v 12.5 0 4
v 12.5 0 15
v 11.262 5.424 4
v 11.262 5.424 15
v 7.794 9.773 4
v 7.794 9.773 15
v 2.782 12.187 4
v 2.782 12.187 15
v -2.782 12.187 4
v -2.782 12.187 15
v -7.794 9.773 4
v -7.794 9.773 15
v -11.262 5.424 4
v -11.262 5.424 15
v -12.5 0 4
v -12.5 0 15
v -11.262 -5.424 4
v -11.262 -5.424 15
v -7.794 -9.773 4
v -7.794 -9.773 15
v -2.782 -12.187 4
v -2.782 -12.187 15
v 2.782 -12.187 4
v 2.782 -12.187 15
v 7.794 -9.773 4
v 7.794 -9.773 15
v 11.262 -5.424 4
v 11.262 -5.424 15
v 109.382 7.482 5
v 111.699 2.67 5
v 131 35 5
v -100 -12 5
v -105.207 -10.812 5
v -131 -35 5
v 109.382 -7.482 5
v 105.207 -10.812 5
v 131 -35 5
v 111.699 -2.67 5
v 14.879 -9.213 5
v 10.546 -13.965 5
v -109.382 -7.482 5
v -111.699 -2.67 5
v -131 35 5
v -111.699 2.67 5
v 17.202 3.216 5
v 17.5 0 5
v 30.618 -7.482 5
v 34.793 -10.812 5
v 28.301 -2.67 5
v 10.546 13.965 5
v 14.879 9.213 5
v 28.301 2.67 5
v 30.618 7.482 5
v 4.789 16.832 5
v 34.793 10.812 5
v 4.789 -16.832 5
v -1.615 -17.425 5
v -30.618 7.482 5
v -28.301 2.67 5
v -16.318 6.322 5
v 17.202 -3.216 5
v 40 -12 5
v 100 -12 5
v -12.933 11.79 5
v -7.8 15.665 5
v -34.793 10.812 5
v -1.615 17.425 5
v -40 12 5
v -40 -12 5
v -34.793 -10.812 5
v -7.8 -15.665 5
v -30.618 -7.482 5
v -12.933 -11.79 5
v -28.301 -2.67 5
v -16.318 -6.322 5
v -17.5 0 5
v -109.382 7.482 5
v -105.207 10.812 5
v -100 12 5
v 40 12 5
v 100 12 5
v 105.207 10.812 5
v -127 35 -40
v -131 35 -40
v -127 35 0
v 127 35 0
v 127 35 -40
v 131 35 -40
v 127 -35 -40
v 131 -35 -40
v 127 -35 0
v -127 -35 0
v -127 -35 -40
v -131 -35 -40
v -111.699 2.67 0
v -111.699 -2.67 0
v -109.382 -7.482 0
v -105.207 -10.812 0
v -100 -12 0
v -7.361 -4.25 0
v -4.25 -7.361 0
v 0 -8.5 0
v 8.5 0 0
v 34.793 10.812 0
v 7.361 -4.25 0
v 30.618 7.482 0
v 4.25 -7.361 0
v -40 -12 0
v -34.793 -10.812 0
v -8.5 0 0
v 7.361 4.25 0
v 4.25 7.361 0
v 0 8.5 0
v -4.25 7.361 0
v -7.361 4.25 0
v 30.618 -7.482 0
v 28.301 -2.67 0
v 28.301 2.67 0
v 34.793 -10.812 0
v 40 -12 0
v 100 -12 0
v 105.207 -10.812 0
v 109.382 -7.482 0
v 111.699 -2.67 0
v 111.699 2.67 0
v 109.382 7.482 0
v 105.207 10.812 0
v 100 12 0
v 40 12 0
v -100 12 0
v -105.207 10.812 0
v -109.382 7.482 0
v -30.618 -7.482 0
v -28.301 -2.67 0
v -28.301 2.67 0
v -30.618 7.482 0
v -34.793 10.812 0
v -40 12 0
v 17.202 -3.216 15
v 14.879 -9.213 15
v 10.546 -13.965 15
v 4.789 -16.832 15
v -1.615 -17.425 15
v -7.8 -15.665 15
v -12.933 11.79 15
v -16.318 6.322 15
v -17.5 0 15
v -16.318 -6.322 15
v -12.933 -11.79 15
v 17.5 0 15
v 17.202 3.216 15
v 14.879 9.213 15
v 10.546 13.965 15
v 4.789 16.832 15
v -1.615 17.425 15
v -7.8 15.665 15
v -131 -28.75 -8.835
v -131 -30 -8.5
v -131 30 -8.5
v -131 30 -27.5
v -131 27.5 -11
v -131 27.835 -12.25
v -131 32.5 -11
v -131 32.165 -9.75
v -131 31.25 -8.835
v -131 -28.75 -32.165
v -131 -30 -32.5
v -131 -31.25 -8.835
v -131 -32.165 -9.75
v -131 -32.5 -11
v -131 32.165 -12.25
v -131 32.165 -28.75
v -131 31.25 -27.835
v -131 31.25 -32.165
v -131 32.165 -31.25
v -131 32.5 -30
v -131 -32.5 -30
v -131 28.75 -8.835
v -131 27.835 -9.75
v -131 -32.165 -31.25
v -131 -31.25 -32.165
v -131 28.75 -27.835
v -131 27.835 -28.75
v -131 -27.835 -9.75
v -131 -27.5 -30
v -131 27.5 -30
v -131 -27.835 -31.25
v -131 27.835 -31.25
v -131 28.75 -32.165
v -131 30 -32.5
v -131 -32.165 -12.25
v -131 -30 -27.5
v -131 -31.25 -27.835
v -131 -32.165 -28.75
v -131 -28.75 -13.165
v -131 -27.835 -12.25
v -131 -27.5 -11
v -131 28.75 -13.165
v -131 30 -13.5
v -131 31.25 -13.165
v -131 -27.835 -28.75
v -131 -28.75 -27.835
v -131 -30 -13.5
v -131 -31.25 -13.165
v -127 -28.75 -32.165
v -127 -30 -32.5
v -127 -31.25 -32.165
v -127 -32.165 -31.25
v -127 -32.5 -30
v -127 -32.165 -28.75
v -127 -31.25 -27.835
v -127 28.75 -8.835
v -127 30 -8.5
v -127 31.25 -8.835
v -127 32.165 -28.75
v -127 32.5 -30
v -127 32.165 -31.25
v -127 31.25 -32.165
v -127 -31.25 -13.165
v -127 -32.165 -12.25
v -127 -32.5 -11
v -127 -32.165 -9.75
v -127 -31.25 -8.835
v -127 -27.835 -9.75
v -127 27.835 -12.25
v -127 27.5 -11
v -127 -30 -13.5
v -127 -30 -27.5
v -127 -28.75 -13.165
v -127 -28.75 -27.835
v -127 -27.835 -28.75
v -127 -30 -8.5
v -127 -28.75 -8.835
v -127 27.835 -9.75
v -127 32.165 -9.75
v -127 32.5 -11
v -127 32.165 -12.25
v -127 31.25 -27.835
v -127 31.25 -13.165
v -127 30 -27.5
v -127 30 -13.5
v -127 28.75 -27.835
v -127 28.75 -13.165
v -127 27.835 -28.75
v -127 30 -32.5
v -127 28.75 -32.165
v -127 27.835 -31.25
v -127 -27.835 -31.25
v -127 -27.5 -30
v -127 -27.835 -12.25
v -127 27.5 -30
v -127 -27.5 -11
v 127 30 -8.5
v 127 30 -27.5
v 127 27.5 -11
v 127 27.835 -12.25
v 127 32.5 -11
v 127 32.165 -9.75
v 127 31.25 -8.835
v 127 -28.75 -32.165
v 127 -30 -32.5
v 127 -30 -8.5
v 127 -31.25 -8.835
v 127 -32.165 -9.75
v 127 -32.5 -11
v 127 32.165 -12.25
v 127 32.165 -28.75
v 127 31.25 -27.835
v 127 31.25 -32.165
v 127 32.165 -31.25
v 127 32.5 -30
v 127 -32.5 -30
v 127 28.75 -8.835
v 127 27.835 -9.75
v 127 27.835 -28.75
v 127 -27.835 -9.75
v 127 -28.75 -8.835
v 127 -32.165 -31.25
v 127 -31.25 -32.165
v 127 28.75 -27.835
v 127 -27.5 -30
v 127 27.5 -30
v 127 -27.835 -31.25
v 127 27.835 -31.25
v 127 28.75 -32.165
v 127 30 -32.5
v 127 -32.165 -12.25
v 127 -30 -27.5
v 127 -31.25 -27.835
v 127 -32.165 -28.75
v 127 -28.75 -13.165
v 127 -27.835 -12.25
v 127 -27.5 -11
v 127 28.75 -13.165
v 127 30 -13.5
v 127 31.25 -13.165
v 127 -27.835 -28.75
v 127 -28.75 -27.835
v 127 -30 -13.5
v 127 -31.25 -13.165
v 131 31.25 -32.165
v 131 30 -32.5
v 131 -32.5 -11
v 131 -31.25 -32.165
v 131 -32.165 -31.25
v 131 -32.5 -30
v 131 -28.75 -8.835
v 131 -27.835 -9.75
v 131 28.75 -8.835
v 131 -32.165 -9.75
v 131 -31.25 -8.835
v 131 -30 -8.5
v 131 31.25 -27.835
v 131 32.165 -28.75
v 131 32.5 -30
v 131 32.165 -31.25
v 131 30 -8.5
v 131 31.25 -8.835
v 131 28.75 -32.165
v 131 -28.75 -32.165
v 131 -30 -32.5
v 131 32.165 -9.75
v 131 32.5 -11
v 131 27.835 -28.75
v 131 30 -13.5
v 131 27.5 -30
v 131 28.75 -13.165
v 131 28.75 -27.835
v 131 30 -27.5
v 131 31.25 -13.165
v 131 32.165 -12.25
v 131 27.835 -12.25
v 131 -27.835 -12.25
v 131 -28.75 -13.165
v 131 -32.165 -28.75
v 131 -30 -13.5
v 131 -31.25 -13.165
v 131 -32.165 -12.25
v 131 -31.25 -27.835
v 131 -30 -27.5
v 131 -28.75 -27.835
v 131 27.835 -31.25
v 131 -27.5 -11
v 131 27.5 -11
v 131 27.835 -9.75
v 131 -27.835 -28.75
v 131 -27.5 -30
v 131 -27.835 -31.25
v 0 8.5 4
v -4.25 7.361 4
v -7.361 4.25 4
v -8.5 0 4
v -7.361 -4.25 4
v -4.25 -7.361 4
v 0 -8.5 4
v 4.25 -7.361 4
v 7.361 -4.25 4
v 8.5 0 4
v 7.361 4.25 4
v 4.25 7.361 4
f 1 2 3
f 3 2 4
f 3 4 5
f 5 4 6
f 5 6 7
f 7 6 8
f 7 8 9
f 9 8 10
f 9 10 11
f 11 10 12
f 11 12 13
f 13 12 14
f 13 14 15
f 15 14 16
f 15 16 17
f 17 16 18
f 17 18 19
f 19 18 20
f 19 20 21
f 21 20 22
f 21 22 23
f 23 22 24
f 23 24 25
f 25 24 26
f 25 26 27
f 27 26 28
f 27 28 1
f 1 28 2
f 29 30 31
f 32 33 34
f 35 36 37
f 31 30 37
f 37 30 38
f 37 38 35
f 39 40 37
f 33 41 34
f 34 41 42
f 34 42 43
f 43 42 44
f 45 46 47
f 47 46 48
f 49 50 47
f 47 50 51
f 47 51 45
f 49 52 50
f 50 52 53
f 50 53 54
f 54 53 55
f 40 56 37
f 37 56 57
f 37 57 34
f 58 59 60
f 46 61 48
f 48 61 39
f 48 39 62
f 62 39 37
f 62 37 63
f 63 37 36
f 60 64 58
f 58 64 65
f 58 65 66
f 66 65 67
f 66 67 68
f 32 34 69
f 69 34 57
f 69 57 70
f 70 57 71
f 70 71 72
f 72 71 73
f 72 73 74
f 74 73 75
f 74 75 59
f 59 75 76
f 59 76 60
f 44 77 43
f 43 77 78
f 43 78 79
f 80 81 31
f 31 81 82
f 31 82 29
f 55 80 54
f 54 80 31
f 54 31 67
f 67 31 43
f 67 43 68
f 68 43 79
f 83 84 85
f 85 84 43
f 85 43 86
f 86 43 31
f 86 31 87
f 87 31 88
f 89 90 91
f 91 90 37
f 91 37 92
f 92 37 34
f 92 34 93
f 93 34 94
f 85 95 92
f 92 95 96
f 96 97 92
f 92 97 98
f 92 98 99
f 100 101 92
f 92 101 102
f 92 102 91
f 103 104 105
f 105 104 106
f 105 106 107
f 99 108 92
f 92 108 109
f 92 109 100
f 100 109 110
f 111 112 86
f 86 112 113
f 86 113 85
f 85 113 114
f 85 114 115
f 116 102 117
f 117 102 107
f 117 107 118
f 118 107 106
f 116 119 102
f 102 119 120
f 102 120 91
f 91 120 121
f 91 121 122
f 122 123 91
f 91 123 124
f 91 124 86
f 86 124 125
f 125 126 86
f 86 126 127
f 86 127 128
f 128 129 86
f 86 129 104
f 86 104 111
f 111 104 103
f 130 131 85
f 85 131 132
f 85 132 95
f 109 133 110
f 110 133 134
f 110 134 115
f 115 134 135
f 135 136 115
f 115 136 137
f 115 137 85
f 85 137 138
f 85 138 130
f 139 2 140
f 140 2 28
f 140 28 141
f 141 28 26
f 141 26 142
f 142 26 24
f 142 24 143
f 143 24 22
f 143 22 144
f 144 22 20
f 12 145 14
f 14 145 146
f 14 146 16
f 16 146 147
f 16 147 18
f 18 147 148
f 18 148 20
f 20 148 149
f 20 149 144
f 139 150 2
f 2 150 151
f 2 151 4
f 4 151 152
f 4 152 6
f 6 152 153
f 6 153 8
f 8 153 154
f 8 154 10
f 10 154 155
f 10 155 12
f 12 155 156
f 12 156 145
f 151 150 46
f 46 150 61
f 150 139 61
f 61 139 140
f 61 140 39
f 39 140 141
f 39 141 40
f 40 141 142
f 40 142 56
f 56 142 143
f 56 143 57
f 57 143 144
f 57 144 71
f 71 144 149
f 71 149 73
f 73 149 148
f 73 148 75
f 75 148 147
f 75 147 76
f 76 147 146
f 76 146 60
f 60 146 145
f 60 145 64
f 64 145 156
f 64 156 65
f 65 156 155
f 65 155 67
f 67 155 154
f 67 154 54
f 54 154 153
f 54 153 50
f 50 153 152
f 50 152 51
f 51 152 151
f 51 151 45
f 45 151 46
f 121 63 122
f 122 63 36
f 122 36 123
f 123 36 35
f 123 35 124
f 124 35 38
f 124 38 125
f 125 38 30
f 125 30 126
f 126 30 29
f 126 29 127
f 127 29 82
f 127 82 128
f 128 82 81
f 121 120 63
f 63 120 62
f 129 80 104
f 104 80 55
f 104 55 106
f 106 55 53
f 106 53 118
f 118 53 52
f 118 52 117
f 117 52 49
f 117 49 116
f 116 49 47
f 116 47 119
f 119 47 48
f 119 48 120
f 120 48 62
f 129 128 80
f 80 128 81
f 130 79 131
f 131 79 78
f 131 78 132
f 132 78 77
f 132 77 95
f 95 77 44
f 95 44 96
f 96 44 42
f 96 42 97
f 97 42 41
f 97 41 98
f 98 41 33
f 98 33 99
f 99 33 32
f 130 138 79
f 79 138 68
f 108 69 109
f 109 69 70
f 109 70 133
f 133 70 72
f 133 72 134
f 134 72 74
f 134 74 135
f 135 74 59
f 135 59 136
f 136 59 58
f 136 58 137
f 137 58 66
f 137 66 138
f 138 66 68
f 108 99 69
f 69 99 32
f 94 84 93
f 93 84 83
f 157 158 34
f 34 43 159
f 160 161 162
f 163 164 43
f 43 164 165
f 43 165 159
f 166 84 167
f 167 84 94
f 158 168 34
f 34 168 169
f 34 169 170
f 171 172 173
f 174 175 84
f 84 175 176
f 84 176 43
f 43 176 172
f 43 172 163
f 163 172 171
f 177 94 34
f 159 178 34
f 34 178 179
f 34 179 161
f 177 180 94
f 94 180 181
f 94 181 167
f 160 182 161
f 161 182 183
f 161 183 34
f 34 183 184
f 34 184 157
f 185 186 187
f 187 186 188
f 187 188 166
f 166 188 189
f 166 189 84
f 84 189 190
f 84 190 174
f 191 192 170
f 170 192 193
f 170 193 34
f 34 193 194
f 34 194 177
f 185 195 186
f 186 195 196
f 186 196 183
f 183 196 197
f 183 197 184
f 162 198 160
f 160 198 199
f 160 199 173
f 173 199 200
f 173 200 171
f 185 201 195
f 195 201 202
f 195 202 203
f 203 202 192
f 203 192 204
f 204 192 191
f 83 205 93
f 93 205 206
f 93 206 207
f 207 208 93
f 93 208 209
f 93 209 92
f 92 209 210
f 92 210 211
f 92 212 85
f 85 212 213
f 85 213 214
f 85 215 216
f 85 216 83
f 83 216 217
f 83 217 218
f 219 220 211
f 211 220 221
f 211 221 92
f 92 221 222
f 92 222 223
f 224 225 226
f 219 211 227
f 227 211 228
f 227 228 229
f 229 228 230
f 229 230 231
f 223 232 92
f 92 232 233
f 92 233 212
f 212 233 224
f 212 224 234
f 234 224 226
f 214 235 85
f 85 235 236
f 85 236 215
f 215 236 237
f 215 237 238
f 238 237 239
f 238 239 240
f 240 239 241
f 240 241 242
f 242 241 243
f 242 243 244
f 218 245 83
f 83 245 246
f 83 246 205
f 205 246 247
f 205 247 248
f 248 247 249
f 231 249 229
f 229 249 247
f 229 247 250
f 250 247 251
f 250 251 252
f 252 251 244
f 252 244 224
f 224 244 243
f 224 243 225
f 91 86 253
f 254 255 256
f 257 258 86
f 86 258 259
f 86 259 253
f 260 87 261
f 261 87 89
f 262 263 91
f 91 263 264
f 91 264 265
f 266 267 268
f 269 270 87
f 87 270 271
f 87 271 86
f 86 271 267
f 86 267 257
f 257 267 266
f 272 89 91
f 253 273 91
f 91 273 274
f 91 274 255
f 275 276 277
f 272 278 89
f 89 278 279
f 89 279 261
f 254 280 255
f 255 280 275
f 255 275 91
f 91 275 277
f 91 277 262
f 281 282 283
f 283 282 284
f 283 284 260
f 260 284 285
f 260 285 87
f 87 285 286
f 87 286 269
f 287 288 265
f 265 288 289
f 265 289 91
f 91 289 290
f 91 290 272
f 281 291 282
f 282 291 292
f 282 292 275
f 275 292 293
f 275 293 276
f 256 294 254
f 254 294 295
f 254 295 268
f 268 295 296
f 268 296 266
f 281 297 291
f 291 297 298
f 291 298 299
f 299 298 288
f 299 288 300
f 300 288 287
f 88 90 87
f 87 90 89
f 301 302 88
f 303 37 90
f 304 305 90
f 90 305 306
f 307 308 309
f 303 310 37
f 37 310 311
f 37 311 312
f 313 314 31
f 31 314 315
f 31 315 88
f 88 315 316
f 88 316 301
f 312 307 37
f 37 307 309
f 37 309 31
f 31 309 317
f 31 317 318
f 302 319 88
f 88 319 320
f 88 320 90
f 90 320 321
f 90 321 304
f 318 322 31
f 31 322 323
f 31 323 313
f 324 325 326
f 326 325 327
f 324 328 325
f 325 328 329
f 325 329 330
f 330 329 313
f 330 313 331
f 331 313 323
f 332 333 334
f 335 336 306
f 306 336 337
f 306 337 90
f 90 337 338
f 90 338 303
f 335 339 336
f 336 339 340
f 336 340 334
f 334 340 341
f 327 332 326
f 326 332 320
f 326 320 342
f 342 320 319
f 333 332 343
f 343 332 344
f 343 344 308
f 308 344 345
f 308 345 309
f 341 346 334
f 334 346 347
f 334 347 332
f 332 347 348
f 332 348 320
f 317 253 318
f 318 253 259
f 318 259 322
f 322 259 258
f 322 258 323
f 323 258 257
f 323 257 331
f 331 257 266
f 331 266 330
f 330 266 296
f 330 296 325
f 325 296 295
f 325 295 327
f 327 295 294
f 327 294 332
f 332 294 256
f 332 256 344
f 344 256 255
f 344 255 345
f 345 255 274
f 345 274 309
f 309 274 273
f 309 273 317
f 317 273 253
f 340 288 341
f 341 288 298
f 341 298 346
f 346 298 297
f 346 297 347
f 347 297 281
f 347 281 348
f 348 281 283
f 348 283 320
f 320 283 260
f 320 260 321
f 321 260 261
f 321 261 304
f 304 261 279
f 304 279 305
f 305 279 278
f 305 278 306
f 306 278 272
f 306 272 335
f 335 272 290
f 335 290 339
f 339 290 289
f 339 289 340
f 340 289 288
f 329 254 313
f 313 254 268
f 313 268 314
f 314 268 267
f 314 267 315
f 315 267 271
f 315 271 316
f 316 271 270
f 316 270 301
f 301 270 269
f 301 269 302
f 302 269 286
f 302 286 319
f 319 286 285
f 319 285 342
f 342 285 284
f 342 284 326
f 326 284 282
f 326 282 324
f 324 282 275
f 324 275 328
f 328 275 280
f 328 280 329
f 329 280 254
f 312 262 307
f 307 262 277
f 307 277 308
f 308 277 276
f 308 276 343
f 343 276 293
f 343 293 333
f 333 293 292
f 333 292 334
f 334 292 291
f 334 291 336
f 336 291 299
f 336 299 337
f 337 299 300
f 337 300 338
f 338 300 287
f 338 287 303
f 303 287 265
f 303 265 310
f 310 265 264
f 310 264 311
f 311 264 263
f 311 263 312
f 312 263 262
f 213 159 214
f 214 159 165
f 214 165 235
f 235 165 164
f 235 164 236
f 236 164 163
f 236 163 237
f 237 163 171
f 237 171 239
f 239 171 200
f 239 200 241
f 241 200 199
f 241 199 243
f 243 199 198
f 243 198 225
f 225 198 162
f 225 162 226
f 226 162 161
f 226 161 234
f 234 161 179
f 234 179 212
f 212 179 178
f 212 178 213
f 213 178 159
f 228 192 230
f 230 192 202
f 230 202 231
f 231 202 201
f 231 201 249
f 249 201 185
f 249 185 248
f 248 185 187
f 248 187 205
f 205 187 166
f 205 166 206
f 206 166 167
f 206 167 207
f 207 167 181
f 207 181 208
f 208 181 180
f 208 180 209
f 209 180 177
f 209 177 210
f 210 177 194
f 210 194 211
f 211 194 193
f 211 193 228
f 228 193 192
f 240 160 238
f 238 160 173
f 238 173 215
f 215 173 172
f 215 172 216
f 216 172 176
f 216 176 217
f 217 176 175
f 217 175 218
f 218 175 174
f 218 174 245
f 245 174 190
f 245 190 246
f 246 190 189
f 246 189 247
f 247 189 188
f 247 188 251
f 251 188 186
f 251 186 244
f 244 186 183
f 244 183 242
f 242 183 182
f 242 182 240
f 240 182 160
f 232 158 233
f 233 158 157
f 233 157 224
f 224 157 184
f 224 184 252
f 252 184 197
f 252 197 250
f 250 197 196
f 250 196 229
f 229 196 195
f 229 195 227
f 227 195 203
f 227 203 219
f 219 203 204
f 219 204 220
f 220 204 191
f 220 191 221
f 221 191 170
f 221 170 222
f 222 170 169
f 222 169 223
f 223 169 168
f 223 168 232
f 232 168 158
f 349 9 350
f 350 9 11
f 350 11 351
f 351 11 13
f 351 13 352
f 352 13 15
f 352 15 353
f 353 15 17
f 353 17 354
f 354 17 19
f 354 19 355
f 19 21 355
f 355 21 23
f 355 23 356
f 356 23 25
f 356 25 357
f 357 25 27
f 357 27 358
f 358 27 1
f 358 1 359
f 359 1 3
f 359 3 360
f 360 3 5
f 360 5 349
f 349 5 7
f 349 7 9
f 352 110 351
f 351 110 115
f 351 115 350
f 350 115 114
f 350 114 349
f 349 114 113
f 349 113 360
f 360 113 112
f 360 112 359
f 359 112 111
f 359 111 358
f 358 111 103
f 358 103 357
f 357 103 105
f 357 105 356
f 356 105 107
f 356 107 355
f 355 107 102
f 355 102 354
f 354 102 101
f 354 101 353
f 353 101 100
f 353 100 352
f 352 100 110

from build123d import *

# Parameters (mm, degrees)
ESQUISSE1_W             = 254
ESQUISSE1_H             = 70
BOSS_EXTRU_1_DEPTH      = 5
ESQUISSE2_R             = 12.5
ENL_V_MAT_EXTRU_1_DEPTH = 132.829435256
BOSS_EXTRU_2_START      = 10
ESQUISSE3_R             = 17.5
ESQUISSE3_R_2           = 12.5
BOSS_EXTRU_2_DEPTH      = 10
ENL_V_MAT_EXTRU_2_DEPTH = 133.113587492
ESQUISSE5_W             = 45
ESQUISSE5_H             = 70
BOSS_EXTRU_3_DEPTH      = 4
ESQUISSE6_W             = 45
ESQUISSE6_H             = 70
BOSS_EXTRU_4_DEPTH      = 4
ESQUISSE7_R             = 2.5
ENL_V_MAT_EXTRU_3_DEPTH = 268.336866145
BOSS_EXTRU_5_START      = -4
ESQUISSE8_R             = 12.5
ESQUISSE8_R_2           = 8.5
BOSS_EXTRU_5_DEPTH      = 4


with BuildPart() as part:
    # Esquisse1 → Boss.-Extru.1 (new body)
    with BuildSketch(Plane.XY):
        Rectangle(ESQUISSE1_W, ESQUISSE1_H)
    extrude(amount=BOSS_EXTRU_1_DEPTH)

    # Esquisse2 → Enlèv. mat.-Extru.1 (cut, through all)
    with BuildSketch(Plane.XY.offset(5)):
        Circle(ESQUISSE2_R)
    extrude(amount=-ENL_V_MAT_EXTRU_1_DEPTH, mode=Mode.SUBTRACT)

    # Esquisse3 → Boss.-Extru.2 (add)
    with BuildSketch(Plane.XY.offset(5).offset(BOSS_EXTRU_2_START)):
        Circle(ESQUISSE3_R)
        Circle(ESQUISSE3_R_2, mode=Mode.SUBTRACT)
    extrude(amount=-BOSS_EXTRU_2_DEPTH)

    # Esquisse4 → Enlèv. mat.-Extru.2 (cut, through all)
    with BuildSketch(Plane.XY.offset(5)):
        with BuildLine():
            Line((-100, 12), (-40, 12))
            ThreePointArc((-40, 12), (-28, 0), (-40, -12))
            Line((-40, -12), (-100, -12))
            ThreePointArc((-100, -12), (-112, 0), (-100, 12))
        make_face()
        with BuildLine():
            Line((100, 12), (40, 12))
            ThreePointArc((40, 12), (28, 0), (40, -12))
            Line((40, -12), (100, -12))
            ThreePointArc((100, -12), (112, 0), (100, 12))
        make_face()
    extrude(amount=-ENL_V_MAT_EXTRU_2_DEPTH, mode=Mode.SUBTRACT)

    # Esquisse5 → Boss.-Extru.3 (add)
    with BuildSketch(Plane.ZY.offset(127)):
        with Locations((-17.5, 0)):
            Rectangle(ESQUISSE5_W, ESQUISSE5_H)
    extrude(amount=BOSS_EXTRU_3_DEPTH)

    # Esquisse6 → Boss.-Extru.4 (add)
    with BuildSketch(Plane(origin=(127, 0, 0), x_dir=(0, 0, -1), z_dir=(1, 0, 0))):
        with Locations((17.5, 0)):
            Rectangle(ESQUISSE6_W, ESQUISSE6_H)
    extrude(amount=BOSS_EXTRU_4_DEPTH)

    # Esquisse7 → Enlèv. mat.-Extru.3 (cut, through all)
    with BuildSketch(Plane.ZY.offset(131)):
        with Locations((-11, 30)):
            Circle(ESQUISSE7_R)
        with Locations((-11, -30)):
            Circle(ESQUISSE7_R)
        with Locations((-30, 30)):
            Circle(ESQUISSE7_R)
        with Locations((-30, -30)):
            Circle(ESQUISSE7_R)
    extrude(amount=-ENL_V_MAT_EXTRU_3_DEPTH, mode=Mode.SUBTRACT)

    # Esquisse8 → Boss.-Extru.5 (add)
    with BuildSketch(Plane(origin=(0, 0, 0), x_dir=(-1, 0, 0), z_dir=(0, 0, -1)).offset(BOSS_EXTRU_5_START)):
        with Locations(Location((0, 0, 0), (0, 0, 180))):
            Circle(ESQUISSE8_R)
        Circle(ESQUISSE8_R_2, mode=Mode.SUBTRACT)
    extrude(amount=BOSS_EXTRU_5_DEPTH)


solid = part.part
